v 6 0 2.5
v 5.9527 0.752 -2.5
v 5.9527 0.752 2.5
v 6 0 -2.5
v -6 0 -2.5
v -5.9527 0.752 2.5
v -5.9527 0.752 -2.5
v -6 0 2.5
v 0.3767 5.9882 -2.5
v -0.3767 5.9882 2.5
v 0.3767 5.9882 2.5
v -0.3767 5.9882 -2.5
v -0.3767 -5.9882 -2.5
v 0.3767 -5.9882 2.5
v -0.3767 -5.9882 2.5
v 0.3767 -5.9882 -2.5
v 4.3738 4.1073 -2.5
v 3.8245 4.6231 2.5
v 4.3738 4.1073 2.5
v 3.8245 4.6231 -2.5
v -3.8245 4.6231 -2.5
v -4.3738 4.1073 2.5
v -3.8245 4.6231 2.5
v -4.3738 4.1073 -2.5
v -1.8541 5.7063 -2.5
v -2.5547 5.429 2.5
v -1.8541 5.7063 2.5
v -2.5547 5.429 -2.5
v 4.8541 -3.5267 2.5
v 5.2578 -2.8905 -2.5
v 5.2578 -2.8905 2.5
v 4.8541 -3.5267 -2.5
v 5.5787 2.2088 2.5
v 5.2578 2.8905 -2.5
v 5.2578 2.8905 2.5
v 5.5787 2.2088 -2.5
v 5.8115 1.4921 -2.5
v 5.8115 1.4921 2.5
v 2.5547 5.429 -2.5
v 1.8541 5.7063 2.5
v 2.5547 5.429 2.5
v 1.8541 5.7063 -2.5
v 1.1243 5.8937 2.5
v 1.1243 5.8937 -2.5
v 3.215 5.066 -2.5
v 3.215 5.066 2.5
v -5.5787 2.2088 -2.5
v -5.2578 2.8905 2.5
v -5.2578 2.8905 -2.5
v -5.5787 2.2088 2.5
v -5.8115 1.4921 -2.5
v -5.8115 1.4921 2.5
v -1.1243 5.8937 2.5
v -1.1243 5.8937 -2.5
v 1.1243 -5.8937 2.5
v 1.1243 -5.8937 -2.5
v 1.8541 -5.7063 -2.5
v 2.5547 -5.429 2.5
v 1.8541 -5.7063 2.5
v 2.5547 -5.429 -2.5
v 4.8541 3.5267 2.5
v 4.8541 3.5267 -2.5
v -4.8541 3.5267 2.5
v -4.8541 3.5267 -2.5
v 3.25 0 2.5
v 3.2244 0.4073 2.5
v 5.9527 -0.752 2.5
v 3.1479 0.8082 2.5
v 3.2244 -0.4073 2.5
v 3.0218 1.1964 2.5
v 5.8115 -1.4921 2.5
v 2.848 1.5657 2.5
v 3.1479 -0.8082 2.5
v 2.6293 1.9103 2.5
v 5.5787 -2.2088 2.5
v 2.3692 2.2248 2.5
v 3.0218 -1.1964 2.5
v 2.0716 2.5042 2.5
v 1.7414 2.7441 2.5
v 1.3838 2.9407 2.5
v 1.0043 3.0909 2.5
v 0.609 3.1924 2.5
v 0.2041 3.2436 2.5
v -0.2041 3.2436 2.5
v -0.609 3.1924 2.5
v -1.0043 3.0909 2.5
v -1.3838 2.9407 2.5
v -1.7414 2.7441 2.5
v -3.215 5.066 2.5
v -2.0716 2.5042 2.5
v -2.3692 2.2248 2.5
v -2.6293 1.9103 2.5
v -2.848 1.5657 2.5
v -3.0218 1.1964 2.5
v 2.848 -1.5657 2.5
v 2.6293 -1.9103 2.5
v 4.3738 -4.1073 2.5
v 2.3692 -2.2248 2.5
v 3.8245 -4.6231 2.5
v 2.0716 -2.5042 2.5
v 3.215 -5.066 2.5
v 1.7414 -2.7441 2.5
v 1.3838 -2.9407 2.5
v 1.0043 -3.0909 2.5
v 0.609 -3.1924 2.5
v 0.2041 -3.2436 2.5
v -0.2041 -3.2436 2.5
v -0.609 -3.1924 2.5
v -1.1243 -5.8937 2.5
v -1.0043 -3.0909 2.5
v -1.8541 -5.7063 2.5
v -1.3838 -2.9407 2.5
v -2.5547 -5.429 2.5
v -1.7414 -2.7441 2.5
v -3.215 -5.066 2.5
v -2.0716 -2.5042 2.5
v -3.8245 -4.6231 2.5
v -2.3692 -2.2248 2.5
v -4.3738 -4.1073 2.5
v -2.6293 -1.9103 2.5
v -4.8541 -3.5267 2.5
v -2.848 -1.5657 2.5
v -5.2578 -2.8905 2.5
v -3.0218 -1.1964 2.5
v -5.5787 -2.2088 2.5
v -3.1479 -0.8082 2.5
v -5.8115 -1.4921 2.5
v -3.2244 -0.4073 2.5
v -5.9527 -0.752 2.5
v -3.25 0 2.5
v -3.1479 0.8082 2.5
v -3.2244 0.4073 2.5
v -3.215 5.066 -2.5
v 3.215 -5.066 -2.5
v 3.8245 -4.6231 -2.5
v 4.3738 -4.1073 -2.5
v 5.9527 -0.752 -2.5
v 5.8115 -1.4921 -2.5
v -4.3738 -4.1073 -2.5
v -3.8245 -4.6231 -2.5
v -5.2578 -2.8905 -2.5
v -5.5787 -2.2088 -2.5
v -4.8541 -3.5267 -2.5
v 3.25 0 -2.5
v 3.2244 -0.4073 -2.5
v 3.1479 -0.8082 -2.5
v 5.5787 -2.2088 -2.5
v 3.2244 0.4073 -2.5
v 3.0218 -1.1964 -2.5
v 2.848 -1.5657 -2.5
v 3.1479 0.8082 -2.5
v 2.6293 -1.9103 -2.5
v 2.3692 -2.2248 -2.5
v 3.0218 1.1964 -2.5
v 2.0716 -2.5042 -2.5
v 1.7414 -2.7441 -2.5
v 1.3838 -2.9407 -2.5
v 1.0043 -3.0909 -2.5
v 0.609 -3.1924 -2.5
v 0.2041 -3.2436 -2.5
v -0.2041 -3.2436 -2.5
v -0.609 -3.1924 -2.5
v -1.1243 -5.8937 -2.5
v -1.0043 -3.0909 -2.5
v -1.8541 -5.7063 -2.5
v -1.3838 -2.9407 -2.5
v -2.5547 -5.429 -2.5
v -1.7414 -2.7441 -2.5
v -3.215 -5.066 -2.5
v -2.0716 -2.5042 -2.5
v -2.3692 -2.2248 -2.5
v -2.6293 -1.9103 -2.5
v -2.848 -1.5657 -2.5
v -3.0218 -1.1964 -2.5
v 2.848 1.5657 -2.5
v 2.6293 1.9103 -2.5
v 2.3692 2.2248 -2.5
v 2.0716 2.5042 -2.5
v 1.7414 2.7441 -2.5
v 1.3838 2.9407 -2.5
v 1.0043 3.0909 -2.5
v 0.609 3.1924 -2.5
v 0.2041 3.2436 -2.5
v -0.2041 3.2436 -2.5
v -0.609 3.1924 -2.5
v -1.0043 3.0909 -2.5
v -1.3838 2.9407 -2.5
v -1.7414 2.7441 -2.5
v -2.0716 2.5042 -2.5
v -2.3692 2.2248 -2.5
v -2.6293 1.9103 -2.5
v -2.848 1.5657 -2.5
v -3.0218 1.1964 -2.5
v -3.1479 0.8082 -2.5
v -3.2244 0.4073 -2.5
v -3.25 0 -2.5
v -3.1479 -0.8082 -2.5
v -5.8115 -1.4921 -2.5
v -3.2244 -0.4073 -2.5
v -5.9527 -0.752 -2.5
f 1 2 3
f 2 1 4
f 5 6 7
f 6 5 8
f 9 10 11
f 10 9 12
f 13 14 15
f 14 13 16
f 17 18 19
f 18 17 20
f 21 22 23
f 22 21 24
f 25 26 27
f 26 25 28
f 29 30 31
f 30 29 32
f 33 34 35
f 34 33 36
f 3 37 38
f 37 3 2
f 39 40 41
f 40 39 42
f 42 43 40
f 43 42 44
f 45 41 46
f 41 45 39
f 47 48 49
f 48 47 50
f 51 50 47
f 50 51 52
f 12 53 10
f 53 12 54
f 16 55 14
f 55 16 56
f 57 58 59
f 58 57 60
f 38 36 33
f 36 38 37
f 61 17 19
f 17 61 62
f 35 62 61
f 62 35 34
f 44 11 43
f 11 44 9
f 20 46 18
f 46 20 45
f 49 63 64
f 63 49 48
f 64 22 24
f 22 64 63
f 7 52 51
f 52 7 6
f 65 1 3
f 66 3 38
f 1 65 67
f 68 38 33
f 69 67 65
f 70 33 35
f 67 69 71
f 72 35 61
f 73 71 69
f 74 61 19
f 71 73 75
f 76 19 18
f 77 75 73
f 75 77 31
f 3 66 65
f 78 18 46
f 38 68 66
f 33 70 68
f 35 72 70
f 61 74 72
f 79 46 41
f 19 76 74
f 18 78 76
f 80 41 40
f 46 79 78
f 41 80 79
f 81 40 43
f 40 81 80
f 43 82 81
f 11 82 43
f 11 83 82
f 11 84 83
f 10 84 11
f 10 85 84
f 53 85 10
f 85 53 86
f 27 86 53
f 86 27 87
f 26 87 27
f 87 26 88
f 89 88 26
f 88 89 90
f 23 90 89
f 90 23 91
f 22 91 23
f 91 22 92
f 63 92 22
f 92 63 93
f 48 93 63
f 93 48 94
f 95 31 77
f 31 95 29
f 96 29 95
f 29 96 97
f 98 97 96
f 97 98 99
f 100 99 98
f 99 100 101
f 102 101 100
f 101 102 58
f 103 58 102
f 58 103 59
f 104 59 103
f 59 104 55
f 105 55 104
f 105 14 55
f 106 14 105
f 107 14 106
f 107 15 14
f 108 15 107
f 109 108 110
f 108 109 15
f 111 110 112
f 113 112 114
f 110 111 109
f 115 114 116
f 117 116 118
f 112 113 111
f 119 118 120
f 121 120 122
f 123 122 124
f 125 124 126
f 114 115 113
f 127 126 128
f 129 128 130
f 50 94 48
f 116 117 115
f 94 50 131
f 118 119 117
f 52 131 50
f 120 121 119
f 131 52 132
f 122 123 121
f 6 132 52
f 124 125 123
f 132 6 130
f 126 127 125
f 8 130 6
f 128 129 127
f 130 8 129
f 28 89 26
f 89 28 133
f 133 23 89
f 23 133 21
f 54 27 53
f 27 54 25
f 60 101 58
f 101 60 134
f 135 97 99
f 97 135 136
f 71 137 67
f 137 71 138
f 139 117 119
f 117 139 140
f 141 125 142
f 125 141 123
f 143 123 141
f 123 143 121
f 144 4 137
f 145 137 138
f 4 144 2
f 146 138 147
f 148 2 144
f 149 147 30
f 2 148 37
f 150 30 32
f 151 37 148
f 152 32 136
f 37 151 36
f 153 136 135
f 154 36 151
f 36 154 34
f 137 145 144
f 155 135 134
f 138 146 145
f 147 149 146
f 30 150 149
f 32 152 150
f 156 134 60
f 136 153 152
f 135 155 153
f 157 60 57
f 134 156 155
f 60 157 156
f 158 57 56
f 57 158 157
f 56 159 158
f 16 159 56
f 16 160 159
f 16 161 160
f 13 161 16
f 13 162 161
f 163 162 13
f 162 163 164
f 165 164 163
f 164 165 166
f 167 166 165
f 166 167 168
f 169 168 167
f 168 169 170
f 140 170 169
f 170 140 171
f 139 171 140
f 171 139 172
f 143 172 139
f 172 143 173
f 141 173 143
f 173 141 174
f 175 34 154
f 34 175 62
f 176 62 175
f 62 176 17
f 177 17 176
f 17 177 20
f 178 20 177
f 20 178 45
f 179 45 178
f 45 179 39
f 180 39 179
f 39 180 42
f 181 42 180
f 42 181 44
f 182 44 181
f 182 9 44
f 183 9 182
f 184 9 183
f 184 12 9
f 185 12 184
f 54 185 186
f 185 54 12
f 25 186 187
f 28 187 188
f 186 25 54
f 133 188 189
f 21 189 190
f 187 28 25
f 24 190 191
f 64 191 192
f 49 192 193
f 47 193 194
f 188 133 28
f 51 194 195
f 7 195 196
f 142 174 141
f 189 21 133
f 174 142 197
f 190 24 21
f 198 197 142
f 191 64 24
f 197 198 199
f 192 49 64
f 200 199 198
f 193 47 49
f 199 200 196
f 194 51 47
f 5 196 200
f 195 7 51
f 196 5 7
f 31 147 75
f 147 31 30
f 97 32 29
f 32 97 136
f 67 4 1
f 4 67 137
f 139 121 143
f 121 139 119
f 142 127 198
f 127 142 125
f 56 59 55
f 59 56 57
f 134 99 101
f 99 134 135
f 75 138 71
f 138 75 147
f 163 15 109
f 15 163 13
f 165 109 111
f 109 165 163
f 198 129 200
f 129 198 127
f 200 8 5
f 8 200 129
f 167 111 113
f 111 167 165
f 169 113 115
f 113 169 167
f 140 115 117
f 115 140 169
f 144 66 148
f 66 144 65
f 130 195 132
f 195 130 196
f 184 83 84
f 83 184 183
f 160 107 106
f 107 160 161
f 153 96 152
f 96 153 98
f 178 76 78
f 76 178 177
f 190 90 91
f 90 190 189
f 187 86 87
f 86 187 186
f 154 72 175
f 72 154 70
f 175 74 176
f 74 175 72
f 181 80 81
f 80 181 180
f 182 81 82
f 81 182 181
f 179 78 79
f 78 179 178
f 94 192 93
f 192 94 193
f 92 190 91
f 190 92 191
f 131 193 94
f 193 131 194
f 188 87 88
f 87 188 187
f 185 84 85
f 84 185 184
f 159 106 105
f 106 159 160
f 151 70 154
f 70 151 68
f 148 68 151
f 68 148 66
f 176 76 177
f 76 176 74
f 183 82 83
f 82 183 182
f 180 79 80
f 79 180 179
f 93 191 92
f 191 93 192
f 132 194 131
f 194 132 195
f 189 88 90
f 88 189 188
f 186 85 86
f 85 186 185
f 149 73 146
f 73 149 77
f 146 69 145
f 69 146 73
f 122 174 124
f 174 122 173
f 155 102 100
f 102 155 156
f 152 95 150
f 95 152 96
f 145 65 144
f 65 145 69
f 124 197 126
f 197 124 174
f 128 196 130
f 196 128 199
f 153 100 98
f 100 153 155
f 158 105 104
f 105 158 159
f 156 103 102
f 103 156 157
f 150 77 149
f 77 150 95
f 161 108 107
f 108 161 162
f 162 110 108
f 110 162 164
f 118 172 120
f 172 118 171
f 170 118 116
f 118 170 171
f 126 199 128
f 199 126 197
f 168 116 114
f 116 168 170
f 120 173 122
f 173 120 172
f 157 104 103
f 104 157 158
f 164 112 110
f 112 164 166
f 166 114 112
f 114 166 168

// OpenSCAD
$fn = 50;


difference() {
	union() {
		translate(v = [0, 0, -2.5000000000]) {
			cylinder(h = 5, r = 6.0000000000);
		}
	}
	union() {
		translate(v = [0, 0, -100.0000000000]) {
			cylinder(h = 200, r = 3.2500000000);
		}
	}
}
